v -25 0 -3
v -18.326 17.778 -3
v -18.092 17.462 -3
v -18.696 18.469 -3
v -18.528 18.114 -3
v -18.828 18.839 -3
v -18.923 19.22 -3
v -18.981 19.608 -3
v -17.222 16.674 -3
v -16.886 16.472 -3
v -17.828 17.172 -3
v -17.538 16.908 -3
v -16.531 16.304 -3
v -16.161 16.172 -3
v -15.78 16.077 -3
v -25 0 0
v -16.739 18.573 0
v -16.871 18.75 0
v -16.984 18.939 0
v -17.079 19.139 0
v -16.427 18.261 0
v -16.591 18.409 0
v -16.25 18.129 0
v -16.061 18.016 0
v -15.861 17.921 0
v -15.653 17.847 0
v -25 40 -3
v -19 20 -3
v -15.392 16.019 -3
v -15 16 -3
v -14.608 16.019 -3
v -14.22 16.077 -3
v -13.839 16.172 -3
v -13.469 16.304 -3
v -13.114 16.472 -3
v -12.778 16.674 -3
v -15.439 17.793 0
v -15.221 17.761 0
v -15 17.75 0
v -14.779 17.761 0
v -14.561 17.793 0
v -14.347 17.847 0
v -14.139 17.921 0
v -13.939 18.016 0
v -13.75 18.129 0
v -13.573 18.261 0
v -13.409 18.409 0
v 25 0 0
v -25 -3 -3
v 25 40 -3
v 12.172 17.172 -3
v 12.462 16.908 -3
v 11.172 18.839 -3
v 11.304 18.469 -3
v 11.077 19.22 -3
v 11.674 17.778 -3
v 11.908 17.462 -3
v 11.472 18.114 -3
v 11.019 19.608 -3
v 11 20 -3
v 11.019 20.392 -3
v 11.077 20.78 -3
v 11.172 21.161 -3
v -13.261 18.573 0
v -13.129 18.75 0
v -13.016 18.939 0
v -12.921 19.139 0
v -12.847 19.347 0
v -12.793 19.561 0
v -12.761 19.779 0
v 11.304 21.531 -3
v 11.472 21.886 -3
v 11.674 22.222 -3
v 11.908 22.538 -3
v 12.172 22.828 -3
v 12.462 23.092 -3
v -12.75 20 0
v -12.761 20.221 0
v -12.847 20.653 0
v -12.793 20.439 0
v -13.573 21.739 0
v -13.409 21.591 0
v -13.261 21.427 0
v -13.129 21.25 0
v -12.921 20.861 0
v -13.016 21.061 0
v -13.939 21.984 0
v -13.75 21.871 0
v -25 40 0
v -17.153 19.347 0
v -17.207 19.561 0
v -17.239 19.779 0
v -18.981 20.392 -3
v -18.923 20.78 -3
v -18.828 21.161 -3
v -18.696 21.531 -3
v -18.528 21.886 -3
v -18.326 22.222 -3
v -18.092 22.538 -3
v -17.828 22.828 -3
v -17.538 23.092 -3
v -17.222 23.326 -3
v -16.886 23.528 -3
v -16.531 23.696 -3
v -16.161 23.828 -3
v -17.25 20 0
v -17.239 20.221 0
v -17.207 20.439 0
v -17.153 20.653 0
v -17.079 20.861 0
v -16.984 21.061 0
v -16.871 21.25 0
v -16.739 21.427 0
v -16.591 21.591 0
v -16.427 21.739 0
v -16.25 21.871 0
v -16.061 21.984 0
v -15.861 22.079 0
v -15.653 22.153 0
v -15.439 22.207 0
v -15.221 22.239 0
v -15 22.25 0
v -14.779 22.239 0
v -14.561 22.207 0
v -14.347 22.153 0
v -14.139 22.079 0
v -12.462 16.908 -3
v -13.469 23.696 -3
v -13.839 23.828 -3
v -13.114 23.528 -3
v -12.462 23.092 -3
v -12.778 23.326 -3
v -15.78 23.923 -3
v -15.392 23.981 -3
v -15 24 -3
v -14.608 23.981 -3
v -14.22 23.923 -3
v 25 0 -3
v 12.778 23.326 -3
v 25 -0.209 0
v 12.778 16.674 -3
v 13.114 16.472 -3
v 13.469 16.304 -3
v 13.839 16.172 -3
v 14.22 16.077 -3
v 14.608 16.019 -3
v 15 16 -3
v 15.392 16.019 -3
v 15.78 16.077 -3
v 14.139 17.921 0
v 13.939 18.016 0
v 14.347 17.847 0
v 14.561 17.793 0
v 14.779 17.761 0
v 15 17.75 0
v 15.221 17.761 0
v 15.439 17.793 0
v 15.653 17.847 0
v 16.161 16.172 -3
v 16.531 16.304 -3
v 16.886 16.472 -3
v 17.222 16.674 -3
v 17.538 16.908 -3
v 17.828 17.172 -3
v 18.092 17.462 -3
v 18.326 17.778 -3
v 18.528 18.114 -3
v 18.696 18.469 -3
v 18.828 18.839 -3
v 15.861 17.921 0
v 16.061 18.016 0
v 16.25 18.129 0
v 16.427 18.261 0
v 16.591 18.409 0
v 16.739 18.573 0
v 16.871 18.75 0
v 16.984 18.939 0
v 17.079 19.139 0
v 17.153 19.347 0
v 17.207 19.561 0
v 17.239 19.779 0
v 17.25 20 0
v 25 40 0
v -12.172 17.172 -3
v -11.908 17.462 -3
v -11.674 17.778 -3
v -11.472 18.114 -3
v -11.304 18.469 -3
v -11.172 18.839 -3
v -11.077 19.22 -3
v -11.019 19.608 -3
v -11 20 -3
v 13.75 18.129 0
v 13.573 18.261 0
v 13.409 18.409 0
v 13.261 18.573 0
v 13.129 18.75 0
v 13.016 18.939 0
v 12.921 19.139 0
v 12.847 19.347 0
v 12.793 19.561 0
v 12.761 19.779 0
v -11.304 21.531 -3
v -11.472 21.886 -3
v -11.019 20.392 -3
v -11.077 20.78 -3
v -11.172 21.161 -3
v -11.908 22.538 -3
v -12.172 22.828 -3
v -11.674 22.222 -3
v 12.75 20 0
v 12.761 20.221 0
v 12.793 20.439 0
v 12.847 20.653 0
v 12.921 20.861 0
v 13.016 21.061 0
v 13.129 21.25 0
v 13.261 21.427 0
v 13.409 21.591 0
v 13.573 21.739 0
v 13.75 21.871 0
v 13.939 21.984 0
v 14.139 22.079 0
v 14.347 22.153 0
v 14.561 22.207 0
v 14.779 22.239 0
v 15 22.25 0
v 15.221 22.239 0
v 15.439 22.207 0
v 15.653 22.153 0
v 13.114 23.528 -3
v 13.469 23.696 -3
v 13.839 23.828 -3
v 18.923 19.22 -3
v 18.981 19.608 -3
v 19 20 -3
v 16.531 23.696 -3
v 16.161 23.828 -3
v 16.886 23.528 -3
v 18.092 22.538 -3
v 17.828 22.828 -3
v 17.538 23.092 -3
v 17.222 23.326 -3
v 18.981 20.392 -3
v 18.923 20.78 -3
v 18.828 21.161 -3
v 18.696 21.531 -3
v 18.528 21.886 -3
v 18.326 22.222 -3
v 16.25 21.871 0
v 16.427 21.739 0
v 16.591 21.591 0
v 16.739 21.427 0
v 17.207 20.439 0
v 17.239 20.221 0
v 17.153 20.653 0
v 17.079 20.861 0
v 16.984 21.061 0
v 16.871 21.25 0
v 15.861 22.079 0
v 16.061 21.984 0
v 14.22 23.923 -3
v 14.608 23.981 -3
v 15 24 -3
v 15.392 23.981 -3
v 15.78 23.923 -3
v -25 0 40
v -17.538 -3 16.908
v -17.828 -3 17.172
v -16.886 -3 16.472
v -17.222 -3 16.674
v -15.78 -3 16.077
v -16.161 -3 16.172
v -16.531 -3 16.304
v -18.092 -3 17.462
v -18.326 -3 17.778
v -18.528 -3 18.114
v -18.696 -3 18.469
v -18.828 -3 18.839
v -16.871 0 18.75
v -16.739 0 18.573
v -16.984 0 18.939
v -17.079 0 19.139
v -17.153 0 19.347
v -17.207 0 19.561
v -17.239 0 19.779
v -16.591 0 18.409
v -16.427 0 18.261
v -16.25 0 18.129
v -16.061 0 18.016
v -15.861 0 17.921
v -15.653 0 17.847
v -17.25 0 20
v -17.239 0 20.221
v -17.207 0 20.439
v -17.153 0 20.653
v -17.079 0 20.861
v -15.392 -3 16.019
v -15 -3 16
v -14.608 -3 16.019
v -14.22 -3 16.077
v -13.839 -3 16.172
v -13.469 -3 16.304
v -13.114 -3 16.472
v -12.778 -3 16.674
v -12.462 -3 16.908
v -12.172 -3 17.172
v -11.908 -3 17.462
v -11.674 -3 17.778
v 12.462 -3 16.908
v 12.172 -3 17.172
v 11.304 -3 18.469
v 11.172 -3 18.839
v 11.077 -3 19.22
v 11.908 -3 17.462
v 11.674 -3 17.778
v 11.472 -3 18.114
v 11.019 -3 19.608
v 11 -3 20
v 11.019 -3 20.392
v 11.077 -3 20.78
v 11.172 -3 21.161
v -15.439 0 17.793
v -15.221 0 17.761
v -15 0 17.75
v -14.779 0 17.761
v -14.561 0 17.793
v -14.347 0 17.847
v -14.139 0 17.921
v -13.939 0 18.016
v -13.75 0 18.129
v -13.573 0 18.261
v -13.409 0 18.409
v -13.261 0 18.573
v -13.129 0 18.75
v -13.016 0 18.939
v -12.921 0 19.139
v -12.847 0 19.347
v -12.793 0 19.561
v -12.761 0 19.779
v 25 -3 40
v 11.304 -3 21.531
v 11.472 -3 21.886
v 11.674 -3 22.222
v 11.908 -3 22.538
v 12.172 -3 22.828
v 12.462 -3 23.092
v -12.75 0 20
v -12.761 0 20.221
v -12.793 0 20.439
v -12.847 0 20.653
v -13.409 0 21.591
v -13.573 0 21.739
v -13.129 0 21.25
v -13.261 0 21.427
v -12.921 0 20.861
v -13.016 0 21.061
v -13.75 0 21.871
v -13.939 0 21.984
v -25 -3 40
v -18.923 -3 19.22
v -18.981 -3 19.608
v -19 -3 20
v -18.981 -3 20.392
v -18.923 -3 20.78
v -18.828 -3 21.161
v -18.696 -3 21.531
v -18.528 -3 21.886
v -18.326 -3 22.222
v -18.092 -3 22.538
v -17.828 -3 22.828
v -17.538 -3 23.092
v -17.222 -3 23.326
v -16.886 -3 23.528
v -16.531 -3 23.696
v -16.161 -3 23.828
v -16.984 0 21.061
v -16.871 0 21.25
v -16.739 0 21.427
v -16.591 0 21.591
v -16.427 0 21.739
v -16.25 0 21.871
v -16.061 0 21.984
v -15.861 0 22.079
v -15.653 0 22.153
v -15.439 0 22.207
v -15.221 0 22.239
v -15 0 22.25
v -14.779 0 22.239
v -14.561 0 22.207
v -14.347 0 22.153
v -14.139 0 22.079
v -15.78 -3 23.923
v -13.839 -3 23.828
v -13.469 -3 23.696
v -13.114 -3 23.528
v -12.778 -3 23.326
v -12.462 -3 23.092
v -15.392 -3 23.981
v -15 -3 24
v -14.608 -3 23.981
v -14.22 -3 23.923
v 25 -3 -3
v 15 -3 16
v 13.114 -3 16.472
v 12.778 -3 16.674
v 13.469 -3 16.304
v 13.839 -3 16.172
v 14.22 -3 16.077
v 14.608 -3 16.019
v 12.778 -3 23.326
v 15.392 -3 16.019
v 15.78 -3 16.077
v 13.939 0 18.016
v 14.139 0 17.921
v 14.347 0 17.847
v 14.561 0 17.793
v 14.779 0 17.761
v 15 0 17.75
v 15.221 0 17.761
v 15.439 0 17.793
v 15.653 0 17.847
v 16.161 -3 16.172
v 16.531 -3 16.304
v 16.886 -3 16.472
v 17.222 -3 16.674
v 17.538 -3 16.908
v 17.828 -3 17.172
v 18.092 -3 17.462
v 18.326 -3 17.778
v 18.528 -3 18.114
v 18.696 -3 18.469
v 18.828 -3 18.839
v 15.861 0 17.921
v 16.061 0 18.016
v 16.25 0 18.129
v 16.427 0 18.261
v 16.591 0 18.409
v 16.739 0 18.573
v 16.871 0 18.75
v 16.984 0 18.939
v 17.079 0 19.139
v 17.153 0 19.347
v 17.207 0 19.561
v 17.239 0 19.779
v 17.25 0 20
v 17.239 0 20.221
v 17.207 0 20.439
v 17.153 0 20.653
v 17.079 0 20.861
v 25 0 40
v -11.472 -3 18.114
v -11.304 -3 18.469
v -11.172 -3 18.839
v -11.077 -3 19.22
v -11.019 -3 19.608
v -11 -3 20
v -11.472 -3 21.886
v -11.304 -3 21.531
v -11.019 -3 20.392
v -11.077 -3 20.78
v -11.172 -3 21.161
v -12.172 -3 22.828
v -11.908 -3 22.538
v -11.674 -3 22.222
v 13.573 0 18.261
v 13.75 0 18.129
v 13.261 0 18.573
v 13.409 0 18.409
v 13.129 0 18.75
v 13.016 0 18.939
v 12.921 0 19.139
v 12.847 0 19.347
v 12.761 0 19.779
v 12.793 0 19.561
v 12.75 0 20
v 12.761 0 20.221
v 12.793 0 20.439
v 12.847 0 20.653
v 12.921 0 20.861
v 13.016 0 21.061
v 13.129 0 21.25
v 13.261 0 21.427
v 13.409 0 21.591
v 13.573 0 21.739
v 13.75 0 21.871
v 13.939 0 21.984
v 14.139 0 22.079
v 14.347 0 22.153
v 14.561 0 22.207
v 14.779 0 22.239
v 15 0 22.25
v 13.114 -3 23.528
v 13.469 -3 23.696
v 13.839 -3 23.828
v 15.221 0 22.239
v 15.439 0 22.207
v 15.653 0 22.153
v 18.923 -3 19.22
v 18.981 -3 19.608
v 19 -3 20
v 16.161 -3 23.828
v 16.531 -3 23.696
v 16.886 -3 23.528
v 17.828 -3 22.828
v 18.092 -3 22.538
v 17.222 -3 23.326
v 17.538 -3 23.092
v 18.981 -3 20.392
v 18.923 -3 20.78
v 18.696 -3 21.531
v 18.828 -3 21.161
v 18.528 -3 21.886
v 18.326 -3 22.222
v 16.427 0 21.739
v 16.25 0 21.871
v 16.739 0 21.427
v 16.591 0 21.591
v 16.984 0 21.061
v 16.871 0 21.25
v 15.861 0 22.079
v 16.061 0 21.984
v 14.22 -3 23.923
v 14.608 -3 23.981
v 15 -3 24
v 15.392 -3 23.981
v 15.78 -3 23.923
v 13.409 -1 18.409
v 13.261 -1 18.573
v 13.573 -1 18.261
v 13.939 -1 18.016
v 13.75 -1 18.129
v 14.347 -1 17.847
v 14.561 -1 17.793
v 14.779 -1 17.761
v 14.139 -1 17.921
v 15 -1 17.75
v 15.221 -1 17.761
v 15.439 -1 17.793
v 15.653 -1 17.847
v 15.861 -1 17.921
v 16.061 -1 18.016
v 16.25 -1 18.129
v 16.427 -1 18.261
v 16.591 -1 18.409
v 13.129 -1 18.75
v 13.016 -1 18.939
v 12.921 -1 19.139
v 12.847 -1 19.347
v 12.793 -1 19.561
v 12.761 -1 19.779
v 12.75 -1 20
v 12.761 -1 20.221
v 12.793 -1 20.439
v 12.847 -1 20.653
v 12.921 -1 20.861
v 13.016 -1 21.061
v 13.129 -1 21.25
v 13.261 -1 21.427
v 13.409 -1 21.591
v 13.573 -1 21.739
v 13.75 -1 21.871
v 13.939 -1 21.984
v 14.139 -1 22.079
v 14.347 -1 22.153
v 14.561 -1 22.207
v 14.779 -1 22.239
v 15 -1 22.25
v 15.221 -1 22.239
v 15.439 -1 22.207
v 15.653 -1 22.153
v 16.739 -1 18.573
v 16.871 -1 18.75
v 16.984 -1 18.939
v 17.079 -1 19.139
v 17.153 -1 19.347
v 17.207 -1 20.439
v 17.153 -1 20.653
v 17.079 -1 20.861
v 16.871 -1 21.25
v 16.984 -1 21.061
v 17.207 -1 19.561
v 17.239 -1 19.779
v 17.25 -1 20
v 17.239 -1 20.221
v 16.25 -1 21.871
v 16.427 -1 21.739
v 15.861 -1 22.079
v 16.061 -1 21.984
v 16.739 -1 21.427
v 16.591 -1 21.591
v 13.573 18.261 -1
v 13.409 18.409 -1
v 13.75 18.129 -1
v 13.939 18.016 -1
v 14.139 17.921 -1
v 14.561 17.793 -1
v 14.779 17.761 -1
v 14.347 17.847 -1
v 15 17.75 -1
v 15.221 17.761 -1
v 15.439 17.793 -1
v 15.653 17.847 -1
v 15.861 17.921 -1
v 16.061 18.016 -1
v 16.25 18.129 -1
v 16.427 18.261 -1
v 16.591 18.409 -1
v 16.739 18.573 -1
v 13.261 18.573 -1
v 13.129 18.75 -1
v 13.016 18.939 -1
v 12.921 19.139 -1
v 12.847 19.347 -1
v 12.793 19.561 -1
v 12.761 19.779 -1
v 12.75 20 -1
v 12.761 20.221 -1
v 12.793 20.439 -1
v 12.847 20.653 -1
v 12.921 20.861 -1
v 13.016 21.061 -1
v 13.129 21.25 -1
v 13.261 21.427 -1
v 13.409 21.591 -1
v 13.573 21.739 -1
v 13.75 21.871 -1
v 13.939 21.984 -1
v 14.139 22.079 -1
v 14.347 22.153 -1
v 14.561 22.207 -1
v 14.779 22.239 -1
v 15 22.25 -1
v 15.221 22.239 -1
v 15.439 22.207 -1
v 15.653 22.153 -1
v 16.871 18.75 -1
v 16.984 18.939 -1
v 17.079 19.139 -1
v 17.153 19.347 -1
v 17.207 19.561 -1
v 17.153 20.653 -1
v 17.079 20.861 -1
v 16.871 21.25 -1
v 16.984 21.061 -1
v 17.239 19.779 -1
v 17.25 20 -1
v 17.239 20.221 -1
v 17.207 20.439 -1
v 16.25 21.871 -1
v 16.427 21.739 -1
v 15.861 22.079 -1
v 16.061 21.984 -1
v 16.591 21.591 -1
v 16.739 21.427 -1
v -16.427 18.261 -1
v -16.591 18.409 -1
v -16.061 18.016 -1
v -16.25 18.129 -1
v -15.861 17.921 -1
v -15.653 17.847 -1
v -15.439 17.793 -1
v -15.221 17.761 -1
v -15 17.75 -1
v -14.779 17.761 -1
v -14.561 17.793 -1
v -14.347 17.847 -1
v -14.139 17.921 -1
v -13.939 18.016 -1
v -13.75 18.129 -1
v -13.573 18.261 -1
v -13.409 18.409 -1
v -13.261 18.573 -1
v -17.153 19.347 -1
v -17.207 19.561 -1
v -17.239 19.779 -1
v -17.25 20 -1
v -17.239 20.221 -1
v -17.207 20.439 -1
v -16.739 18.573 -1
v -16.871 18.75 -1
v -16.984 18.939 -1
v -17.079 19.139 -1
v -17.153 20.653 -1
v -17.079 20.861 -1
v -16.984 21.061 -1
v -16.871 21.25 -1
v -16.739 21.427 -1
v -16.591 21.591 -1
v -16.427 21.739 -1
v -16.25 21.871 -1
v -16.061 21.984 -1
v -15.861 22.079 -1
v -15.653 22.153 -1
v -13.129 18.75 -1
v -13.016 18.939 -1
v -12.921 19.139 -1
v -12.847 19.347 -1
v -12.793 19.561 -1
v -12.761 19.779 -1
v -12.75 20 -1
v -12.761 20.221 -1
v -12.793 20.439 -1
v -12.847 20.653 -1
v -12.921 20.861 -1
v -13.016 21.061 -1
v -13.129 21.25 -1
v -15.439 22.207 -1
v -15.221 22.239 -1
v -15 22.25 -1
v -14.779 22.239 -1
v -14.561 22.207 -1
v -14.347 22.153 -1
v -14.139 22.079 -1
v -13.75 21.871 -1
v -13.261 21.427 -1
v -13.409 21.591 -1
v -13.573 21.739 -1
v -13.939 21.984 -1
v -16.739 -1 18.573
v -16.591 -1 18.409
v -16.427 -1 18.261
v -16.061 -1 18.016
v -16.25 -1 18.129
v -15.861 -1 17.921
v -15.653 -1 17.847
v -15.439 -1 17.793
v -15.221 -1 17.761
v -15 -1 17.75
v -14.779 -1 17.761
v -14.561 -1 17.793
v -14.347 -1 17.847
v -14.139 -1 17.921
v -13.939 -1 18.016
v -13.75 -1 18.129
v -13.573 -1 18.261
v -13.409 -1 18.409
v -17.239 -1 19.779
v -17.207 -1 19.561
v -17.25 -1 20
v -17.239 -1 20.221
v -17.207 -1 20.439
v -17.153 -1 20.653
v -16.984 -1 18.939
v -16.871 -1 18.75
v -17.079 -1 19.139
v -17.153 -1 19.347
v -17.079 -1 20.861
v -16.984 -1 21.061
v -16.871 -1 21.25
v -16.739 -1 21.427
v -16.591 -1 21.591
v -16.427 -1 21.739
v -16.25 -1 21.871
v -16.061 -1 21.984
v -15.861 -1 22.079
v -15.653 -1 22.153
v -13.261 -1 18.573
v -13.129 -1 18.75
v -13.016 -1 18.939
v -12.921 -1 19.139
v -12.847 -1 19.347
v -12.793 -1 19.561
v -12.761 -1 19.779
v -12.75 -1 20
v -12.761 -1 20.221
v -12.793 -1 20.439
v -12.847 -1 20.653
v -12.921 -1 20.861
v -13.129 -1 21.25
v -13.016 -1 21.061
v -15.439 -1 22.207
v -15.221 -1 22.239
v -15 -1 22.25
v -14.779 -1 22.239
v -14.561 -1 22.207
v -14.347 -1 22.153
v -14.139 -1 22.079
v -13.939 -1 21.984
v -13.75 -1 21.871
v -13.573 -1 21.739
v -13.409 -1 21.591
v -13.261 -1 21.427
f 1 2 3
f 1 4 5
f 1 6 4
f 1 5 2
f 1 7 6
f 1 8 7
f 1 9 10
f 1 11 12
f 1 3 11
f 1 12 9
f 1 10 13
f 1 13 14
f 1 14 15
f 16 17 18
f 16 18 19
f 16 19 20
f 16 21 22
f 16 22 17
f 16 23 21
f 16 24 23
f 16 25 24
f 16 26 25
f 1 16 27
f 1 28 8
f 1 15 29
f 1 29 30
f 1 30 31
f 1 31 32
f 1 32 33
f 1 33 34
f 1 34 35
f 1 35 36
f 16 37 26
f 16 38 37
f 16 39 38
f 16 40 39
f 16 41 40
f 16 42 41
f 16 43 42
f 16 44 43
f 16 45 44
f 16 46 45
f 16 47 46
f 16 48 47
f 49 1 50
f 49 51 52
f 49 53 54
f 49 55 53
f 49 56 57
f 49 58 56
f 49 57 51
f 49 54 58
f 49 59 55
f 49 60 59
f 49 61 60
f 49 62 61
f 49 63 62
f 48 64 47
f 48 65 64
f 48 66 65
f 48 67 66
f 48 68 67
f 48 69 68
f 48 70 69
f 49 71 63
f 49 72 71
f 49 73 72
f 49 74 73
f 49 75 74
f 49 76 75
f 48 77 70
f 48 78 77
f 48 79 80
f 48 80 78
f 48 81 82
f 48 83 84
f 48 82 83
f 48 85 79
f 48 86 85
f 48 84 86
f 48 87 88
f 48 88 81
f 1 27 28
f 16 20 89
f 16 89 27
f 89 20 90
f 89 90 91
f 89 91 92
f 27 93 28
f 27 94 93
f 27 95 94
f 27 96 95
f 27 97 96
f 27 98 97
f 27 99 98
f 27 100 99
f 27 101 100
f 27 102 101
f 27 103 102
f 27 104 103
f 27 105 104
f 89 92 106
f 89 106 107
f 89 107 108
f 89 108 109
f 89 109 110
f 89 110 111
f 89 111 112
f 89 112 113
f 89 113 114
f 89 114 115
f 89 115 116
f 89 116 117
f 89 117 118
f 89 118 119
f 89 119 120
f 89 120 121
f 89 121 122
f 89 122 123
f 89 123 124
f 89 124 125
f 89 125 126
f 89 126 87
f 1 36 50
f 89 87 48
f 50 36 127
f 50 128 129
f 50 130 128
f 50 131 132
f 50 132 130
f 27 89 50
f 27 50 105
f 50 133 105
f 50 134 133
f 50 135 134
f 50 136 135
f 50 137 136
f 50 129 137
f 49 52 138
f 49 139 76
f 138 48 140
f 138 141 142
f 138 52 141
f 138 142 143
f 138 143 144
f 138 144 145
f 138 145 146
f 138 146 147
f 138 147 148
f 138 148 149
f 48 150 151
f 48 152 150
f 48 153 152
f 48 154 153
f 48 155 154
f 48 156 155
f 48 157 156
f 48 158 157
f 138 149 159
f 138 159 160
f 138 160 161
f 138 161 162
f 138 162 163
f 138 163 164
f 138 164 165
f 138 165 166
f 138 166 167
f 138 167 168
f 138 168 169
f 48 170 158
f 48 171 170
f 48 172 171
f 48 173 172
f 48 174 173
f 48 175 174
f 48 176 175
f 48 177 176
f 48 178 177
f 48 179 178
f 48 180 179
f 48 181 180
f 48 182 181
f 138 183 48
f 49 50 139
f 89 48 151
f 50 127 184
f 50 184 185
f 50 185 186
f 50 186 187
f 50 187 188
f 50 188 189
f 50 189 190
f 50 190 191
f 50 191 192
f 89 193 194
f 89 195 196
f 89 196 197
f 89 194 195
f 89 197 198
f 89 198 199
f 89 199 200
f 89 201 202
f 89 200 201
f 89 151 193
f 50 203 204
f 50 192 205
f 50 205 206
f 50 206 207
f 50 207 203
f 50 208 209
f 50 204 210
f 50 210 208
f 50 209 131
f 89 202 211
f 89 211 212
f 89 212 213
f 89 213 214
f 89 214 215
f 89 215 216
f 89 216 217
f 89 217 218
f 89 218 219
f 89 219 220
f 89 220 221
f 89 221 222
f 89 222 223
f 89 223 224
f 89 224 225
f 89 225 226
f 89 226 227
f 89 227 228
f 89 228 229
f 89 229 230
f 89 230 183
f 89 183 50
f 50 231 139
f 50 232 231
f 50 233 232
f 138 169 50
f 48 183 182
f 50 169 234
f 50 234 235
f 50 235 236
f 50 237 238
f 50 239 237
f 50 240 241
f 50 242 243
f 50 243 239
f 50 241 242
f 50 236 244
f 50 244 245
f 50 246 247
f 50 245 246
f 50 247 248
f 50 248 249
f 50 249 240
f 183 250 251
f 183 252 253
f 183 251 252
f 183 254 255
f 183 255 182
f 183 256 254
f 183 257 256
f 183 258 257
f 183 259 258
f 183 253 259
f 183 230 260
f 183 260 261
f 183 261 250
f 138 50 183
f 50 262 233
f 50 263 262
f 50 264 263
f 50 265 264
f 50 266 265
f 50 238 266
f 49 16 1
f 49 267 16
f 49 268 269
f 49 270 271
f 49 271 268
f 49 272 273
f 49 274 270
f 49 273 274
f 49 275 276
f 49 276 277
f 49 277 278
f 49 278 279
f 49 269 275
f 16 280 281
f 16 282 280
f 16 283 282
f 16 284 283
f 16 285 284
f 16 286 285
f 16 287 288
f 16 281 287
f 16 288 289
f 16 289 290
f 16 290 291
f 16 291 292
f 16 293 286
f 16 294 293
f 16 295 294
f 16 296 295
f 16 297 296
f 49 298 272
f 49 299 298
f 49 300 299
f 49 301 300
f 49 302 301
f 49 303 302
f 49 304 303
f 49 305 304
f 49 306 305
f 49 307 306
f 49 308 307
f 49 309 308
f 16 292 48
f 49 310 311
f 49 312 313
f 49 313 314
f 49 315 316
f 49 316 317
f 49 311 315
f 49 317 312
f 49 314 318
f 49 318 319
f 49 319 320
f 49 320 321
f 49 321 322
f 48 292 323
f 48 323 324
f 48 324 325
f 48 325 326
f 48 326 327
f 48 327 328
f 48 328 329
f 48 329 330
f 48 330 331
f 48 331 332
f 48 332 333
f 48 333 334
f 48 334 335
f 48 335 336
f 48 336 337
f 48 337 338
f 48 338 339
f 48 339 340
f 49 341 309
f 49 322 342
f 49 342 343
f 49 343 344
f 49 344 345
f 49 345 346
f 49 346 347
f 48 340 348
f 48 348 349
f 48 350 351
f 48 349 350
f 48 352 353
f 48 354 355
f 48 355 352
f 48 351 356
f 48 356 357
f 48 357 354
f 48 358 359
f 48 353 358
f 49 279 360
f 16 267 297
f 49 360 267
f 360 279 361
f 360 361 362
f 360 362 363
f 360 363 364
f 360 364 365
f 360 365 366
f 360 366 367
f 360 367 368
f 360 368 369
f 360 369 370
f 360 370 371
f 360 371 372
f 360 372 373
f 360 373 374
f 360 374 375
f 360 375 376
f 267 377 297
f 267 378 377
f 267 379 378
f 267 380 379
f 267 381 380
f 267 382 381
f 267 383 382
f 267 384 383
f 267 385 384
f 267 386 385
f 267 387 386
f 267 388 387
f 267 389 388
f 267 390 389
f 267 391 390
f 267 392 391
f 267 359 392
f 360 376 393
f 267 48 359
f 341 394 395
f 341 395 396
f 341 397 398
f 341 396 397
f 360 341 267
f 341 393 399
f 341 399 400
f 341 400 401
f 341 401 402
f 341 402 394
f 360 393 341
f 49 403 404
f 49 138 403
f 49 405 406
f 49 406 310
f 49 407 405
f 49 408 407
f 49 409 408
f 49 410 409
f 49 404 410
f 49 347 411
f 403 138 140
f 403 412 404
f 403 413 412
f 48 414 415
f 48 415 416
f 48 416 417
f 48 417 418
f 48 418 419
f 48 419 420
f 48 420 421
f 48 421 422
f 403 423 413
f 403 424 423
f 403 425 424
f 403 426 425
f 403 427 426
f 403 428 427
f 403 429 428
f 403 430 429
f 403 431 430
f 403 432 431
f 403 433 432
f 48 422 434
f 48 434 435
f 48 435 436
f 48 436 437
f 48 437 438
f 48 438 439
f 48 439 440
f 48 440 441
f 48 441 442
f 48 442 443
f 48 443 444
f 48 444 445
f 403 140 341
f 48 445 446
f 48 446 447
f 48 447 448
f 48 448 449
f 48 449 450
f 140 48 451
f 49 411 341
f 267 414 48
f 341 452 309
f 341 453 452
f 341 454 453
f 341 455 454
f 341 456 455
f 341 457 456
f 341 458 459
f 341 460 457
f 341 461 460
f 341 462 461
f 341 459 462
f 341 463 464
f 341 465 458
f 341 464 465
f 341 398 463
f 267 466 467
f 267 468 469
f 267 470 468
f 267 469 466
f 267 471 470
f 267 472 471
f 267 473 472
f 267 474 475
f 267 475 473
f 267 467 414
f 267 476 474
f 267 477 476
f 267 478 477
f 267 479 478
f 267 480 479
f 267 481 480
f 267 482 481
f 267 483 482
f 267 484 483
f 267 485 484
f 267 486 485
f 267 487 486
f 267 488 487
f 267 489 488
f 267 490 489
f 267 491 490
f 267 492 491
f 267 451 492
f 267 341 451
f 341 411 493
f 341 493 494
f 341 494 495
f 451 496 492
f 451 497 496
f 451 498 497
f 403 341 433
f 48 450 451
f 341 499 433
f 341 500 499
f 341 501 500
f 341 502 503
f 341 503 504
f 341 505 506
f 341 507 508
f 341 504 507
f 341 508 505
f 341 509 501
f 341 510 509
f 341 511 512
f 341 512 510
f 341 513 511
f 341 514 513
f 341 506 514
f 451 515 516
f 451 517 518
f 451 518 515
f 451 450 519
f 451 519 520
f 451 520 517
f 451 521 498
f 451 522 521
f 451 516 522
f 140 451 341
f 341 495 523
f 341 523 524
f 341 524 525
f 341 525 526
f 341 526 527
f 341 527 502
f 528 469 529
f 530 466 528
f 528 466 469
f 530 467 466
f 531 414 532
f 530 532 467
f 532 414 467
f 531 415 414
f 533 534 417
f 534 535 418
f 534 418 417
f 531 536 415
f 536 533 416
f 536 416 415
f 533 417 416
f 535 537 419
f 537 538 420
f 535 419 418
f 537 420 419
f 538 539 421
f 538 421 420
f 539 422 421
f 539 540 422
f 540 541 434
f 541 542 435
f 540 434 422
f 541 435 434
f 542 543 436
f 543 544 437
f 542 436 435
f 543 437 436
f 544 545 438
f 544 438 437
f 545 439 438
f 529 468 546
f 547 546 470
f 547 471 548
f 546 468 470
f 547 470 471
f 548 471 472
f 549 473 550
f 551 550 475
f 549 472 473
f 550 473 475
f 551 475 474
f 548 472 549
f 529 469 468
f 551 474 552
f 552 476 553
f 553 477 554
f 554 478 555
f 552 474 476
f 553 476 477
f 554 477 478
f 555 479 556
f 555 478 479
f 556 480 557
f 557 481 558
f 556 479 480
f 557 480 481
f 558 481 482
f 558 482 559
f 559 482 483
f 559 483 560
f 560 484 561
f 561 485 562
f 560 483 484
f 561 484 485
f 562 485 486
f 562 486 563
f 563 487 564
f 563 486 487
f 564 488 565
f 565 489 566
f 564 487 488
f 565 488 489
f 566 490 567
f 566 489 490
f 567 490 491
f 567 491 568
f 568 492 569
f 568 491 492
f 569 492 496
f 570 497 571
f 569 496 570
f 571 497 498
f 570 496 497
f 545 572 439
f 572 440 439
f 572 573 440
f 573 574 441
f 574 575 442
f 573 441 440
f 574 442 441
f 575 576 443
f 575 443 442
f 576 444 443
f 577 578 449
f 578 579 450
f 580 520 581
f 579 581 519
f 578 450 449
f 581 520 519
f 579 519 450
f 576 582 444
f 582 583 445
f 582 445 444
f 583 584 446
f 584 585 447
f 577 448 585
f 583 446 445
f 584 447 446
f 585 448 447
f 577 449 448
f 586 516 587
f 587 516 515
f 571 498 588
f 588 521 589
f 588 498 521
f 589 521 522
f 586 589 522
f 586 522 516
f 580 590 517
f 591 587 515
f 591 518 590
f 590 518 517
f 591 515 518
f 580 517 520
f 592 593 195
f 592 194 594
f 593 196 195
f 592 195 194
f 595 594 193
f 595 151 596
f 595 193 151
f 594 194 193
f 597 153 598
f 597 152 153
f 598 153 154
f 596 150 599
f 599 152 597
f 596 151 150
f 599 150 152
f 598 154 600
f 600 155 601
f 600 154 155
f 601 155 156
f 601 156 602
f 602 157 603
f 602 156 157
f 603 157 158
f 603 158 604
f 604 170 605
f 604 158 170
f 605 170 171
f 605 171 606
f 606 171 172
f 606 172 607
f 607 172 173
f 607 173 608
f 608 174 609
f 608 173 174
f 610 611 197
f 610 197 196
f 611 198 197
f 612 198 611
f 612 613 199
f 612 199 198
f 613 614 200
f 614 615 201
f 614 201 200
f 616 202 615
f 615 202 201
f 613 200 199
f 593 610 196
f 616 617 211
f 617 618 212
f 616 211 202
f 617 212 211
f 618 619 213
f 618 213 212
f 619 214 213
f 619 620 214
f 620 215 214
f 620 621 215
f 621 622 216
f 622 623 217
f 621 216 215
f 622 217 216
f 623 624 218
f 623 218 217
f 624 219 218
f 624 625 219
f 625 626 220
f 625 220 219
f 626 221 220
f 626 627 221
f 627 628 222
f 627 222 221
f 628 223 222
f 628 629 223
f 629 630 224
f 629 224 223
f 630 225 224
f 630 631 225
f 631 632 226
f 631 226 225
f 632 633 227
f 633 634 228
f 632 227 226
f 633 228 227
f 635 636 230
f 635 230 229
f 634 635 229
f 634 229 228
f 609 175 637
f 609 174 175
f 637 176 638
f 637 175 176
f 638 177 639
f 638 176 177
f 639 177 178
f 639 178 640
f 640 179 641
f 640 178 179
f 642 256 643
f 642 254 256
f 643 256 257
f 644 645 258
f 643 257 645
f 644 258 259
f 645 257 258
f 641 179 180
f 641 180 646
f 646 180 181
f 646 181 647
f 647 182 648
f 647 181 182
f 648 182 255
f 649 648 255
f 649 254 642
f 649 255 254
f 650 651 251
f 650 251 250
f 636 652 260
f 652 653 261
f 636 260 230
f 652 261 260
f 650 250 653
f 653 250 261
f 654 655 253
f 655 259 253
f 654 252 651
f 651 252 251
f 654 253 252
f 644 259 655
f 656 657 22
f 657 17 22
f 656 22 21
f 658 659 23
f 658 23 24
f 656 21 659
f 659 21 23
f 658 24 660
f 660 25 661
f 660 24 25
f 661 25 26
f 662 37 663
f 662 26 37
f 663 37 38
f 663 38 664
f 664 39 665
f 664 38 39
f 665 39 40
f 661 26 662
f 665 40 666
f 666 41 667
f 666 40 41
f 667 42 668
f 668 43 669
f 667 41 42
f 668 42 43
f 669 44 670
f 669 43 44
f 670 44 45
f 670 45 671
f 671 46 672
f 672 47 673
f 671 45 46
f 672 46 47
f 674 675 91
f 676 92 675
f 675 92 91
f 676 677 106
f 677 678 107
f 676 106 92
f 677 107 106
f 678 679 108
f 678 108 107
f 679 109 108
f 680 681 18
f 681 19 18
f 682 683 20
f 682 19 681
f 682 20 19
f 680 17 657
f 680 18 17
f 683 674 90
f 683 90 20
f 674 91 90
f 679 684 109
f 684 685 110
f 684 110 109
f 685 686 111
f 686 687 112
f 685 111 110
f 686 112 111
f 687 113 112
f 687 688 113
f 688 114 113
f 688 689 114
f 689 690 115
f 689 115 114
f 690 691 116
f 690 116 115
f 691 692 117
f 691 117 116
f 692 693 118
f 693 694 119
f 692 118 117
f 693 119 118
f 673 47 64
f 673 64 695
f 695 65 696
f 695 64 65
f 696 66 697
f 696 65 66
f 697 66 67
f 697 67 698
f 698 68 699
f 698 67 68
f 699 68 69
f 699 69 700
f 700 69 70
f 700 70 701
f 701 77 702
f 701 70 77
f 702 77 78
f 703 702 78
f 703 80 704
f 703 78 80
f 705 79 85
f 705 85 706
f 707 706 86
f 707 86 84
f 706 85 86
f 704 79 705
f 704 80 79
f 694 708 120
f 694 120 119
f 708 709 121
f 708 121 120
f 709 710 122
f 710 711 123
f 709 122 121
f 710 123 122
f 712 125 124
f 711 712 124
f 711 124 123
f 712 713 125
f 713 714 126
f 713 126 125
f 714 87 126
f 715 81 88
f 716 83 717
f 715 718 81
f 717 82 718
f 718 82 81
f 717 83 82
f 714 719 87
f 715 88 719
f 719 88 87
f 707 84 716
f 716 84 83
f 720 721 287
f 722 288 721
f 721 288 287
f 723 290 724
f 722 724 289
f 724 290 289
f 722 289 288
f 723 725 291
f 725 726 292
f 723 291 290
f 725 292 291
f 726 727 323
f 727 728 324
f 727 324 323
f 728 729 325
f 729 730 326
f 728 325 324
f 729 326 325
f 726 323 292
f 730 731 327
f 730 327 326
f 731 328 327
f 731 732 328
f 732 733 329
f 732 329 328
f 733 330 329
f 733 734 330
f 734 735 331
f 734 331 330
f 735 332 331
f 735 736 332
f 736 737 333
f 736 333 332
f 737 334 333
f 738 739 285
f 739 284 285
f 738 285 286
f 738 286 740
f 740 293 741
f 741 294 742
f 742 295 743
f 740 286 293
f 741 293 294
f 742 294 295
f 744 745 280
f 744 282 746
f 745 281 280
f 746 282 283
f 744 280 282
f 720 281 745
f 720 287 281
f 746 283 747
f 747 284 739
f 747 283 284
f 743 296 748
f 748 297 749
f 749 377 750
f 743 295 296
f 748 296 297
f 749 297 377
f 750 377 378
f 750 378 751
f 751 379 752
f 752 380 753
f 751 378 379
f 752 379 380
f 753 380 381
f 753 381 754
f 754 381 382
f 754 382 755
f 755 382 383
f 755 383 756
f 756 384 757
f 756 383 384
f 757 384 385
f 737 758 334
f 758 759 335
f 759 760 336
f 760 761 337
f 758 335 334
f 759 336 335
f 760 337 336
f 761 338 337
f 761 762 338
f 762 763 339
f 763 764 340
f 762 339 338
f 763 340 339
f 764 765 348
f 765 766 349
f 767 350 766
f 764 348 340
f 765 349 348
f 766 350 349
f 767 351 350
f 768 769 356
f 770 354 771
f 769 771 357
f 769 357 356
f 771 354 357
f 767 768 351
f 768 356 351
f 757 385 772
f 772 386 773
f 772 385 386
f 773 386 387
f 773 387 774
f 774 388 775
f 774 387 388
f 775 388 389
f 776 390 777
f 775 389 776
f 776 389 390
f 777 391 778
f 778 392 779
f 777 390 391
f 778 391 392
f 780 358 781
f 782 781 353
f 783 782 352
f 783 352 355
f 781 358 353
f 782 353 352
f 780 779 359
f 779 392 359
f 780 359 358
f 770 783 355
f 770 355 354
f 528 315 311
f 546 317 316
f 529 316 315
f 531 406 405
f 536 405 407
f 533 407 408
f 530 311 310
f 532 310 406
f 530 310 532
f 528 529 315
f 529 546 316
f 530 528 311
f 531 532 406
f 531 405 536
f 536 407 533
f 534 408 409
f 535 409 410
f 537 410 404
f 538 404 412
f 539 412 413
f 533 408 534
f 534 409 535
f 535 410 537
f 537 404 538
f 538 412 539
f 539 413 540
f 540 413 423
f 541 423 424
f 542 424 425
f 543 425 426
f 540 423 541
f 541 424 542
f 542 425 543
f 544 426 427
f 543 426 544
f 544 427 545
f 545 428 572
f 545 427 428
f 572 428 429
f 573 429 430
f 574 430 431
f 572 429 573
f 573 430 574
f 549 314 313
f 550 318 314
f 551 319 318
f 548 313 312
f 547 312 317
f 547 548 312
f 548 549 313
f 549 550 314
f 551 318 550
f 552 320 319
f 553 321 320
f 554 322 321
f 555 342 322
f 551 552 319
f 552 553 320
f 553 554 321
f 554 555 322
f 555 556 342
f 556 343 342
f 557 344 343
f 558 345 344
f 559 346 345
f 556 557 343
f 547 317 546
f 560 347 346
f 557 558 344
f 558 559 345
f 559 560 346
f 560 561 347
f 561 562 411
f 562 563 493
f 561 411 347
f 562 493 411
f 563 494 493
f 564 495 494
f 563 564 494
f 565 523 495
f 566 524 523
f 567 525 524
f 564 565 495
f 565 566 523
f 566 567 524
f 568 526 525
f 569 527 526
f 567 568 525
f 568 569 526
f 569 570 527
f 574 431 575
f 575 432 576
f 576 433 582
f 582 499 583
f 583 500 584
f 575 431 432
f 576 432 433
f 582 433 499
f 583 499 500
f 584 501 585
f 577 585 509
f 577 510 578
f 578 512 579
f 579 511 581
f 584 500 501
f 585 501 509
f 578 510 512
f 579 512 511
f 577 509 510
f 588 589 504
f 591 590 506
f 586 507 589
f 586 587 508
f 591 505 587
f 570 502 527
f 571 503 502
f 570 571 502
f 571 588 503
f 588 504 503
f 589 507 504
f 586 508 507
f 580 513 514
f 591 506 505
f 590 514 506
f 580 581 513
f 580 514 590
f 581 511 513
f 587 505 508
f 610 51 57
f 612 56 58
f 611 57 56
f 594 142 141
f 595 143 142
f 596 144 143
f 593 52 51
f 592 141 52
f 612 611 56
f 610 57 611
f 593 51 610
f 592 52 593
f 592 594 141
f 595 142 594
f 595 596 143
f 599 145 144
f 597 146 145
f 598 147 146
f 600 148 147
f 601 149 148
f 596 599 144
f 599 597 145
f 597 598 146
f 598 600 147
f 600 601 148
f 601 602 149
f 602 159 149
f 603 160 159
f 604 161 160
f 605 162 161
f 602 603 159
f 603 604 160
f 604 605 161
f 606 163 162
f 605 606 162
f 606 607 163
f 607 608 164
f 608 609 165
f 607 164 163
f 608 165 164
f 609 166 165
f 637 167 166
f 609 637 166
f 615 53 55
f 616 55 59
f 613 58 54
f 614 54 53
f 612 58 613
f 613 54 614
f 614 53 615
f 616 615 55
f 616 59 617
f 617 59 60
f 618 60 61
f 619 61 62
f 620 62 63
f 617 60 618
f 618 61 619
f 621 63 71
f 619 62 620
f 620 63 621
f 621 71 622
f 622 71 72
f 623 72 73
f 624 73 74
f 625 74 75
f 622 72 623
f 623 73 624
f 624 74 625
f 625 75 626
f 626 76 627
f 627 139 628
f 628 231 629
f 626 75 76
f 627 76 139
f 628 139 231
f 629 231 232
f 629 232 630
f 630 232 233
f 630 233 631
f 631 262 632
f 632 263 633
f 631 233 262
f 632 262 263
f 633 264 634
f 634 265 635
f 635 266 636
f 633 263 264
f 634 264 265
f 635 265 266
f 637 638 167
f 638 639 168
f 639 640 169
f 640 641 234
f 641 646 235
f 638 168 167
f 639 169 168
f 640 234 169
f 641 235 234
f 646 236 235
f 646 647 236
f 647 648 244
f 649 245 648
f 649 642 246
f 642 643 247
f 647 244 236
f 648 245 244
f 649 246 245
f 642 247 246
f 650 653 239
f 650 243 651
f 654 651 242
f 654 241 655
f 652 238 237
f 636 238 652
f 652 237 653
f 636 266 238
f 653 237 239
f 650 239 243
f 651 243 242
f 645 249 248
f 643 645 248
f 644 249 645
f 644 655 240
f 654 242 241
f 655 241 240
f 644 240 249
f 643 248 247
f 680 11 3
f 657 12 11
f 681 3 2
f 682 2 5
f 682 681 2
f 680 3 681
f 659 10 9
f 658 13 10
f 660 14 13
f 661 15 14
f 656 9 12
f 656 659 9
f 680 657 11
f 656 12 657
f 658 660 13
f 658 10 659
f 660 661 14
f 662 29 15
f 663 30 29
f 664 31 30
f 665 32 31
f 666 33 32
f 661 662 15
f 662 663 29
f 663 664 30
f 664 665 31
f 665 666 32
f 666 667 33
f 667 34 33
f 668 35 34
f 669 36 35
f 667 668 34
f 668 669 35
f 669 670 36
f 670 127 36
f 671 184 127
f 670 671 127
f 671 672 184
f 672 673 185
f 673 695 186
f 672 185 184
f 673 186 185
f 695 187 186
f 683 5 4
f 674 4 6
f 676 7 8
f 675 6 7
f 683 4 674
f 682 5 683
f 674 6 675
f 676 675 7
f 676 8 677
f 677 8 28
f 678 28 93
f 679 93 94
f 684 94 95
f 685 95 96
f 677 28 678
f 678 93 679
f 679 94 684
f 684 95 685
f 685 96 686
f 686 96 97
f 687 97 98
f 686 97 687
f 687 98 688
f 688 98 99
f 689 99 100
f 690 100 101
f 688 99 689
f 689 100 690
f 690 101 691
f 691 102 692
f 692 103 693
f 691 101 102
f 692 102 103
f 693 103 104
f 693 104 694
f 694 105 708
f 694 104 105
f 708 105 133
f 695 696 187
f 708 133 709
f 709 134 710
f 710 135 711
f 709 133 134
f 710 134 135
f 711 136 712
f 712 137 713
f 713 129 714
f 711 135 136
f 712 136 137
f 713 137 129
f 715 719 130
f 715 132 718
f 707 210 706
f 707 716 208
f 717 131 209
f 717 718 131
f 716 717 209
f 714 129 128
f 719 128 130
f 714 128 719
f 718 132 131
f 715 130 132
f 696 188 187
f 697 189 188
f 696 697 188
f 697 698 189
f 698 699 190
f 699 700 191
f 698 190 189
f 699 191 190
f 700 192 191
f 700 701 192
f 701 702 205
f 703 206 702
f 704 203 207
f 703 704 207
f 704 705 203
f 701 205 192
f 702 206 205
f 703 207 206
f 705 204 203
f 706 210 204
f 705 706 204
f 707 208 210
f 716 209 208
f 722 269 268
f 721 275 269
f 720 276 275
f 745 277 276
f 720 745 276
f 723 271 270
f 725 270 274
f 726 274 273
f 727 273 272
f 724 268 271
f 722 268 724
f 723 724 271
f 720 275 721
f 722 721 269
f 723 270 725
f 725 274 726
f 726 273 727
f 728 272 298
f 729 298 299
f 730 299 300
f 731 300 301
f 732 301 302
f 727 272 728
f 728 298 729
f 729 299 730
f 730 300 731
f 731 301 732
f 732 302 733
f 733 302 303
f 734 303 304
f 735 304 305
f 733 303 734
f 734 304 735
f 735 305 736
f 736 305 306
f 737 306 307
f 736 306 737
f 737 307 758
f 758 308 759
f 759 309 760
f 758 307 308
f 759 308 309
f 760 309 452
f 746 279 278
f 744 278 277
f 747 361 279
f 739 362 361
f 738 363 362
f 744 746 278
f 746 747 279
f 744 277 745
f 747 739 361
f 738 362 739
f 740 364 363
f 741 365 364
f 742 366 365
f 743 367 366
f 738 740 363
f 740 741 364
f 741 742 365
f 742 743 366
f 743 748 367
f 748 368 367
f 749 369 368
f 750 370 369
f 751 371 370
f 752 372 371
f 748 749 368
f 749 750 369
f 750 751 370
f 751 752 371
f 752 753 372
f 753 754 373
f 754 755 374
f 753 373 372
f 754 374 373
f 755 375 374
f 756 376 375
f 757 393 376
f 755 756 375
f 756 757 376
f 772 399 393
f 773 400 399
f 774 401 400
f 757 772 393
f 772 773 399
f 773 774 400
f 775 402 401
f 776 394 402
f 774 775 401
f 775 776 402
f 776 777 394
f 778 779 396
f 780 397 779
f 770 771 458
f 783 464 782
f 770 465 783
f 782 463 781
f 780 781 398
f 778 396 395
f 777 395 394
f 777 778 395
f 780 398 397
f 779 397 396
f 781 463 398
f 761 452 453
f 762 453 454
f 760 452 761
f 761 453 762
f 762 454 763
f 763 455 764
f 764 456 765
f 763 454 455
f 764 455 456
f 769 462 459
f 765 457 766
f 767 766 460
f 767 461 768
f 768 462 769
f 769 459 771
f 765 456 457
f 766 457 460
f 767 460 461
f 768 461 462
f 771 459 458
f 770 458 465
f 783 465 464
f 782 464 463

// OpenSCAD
// ============================================================
//  L 字金具 (L-bracket) / M4 皿穴 4 箇所
//  内側コーナー = 原点
//  水平フランジ: +Y 方向へ 40mm / 垂直フランジ: +Z 方向へ 40mm
// ============================================================

$fn = 64;

// ---- 寸法パラメータ ----
width       = 50;    // 幅 (X 方向, 両フランジ共通)
depth       = 40;    // 水平フランジの奥行き (+Y)
height      = 40;    // 垂直フランジの高さ (+Z)
thickness   = 3;     // 板厚

// ---- 皿穴パラメータ (M4) ----
hole_d      = 4.5;   // 貫通穴径
csk_d       = 8;     // 皿座面径
csk_depth   = 2;     // 皿座面深さ
edge_offset = 10;    // 左右の縁から穴中心までの距離

eps = 0.01;          // 面の重なり回避用

// ------------------------------------------------------------
//  本体
// ------------------------------------------------------------
module bracket_body() {
    // 水平フランジ: Z ∈ [-t, 0], Y ∈ [-t, depth]  (上面 Z=0 が内側)
    translate([-width / 2, -thickness, -thickness])
        cube([width, depth + thickness, thickness]);

    // 垂直フランジ: Y ∈ [-t, 0], Z ∈ [-t, height] (前面 Y=0 が内側)
    translate([-width / 2, -thickness, -thickness])
        cube([width, thickness, height + thickness]);
}

// ------------------------------------------------------------
//  皿穴 (ローカル座標)
//   z = 0 が外側表面 (ボルト頭側)、+Z 方向が板の内部 (厚さ t)
// ------------------------------------------------------------
module countersunk_hole(t = thickness) {
    // 貫通穴 Φ4.5
    translate([0, 0, -eps])
        cylinder(h = t + 2 * eps, d = hole_d);

    // 皿座面 (円錐): 表面で Φ8 → 深さ 2mm で Φ4.5 に収束
    // 表面のわずかに外側から開始して同一平面の重なりを避ける
    translate([0, 0, -eps])
        cylinder(h  = csk_depth + eps,
                 d1 = csk_d + (csk_d - hole_d) / csk_depth * eps,
                 d2 = hole_d);
}

// ------------------------------------------------------------
//  穴の配置
//   各面の中心線上、左右の縁から 10mm 内側 (X = ±15mm)
// ------------------------------------------------------------
module holes() {
    hx = width / 2 - edge_offset;

    for (x = [-hx, hx]) {
        // 水平フランジ: 外側表面 = 下面 (Z = -t)、皿座面は下向き
        translate([x, depth / 2, -thickness])
            countersunk_hole(thickness);

        // 垂直フランジ: 外側表面 = 背面 (Y = -t)、皿座面は -Y 向き
        translate([x, -thickness, height / 2])
            rotate([-90, 0, 0])
                countersunk_hole(thickness);
    }
}

// ------------------------------------------------------------
//  組み立て
// ------------------------------------------------------------
module l_bracket() {
    difference() {
        bracket_body();
        holes();
    }
}

l_bracket();
